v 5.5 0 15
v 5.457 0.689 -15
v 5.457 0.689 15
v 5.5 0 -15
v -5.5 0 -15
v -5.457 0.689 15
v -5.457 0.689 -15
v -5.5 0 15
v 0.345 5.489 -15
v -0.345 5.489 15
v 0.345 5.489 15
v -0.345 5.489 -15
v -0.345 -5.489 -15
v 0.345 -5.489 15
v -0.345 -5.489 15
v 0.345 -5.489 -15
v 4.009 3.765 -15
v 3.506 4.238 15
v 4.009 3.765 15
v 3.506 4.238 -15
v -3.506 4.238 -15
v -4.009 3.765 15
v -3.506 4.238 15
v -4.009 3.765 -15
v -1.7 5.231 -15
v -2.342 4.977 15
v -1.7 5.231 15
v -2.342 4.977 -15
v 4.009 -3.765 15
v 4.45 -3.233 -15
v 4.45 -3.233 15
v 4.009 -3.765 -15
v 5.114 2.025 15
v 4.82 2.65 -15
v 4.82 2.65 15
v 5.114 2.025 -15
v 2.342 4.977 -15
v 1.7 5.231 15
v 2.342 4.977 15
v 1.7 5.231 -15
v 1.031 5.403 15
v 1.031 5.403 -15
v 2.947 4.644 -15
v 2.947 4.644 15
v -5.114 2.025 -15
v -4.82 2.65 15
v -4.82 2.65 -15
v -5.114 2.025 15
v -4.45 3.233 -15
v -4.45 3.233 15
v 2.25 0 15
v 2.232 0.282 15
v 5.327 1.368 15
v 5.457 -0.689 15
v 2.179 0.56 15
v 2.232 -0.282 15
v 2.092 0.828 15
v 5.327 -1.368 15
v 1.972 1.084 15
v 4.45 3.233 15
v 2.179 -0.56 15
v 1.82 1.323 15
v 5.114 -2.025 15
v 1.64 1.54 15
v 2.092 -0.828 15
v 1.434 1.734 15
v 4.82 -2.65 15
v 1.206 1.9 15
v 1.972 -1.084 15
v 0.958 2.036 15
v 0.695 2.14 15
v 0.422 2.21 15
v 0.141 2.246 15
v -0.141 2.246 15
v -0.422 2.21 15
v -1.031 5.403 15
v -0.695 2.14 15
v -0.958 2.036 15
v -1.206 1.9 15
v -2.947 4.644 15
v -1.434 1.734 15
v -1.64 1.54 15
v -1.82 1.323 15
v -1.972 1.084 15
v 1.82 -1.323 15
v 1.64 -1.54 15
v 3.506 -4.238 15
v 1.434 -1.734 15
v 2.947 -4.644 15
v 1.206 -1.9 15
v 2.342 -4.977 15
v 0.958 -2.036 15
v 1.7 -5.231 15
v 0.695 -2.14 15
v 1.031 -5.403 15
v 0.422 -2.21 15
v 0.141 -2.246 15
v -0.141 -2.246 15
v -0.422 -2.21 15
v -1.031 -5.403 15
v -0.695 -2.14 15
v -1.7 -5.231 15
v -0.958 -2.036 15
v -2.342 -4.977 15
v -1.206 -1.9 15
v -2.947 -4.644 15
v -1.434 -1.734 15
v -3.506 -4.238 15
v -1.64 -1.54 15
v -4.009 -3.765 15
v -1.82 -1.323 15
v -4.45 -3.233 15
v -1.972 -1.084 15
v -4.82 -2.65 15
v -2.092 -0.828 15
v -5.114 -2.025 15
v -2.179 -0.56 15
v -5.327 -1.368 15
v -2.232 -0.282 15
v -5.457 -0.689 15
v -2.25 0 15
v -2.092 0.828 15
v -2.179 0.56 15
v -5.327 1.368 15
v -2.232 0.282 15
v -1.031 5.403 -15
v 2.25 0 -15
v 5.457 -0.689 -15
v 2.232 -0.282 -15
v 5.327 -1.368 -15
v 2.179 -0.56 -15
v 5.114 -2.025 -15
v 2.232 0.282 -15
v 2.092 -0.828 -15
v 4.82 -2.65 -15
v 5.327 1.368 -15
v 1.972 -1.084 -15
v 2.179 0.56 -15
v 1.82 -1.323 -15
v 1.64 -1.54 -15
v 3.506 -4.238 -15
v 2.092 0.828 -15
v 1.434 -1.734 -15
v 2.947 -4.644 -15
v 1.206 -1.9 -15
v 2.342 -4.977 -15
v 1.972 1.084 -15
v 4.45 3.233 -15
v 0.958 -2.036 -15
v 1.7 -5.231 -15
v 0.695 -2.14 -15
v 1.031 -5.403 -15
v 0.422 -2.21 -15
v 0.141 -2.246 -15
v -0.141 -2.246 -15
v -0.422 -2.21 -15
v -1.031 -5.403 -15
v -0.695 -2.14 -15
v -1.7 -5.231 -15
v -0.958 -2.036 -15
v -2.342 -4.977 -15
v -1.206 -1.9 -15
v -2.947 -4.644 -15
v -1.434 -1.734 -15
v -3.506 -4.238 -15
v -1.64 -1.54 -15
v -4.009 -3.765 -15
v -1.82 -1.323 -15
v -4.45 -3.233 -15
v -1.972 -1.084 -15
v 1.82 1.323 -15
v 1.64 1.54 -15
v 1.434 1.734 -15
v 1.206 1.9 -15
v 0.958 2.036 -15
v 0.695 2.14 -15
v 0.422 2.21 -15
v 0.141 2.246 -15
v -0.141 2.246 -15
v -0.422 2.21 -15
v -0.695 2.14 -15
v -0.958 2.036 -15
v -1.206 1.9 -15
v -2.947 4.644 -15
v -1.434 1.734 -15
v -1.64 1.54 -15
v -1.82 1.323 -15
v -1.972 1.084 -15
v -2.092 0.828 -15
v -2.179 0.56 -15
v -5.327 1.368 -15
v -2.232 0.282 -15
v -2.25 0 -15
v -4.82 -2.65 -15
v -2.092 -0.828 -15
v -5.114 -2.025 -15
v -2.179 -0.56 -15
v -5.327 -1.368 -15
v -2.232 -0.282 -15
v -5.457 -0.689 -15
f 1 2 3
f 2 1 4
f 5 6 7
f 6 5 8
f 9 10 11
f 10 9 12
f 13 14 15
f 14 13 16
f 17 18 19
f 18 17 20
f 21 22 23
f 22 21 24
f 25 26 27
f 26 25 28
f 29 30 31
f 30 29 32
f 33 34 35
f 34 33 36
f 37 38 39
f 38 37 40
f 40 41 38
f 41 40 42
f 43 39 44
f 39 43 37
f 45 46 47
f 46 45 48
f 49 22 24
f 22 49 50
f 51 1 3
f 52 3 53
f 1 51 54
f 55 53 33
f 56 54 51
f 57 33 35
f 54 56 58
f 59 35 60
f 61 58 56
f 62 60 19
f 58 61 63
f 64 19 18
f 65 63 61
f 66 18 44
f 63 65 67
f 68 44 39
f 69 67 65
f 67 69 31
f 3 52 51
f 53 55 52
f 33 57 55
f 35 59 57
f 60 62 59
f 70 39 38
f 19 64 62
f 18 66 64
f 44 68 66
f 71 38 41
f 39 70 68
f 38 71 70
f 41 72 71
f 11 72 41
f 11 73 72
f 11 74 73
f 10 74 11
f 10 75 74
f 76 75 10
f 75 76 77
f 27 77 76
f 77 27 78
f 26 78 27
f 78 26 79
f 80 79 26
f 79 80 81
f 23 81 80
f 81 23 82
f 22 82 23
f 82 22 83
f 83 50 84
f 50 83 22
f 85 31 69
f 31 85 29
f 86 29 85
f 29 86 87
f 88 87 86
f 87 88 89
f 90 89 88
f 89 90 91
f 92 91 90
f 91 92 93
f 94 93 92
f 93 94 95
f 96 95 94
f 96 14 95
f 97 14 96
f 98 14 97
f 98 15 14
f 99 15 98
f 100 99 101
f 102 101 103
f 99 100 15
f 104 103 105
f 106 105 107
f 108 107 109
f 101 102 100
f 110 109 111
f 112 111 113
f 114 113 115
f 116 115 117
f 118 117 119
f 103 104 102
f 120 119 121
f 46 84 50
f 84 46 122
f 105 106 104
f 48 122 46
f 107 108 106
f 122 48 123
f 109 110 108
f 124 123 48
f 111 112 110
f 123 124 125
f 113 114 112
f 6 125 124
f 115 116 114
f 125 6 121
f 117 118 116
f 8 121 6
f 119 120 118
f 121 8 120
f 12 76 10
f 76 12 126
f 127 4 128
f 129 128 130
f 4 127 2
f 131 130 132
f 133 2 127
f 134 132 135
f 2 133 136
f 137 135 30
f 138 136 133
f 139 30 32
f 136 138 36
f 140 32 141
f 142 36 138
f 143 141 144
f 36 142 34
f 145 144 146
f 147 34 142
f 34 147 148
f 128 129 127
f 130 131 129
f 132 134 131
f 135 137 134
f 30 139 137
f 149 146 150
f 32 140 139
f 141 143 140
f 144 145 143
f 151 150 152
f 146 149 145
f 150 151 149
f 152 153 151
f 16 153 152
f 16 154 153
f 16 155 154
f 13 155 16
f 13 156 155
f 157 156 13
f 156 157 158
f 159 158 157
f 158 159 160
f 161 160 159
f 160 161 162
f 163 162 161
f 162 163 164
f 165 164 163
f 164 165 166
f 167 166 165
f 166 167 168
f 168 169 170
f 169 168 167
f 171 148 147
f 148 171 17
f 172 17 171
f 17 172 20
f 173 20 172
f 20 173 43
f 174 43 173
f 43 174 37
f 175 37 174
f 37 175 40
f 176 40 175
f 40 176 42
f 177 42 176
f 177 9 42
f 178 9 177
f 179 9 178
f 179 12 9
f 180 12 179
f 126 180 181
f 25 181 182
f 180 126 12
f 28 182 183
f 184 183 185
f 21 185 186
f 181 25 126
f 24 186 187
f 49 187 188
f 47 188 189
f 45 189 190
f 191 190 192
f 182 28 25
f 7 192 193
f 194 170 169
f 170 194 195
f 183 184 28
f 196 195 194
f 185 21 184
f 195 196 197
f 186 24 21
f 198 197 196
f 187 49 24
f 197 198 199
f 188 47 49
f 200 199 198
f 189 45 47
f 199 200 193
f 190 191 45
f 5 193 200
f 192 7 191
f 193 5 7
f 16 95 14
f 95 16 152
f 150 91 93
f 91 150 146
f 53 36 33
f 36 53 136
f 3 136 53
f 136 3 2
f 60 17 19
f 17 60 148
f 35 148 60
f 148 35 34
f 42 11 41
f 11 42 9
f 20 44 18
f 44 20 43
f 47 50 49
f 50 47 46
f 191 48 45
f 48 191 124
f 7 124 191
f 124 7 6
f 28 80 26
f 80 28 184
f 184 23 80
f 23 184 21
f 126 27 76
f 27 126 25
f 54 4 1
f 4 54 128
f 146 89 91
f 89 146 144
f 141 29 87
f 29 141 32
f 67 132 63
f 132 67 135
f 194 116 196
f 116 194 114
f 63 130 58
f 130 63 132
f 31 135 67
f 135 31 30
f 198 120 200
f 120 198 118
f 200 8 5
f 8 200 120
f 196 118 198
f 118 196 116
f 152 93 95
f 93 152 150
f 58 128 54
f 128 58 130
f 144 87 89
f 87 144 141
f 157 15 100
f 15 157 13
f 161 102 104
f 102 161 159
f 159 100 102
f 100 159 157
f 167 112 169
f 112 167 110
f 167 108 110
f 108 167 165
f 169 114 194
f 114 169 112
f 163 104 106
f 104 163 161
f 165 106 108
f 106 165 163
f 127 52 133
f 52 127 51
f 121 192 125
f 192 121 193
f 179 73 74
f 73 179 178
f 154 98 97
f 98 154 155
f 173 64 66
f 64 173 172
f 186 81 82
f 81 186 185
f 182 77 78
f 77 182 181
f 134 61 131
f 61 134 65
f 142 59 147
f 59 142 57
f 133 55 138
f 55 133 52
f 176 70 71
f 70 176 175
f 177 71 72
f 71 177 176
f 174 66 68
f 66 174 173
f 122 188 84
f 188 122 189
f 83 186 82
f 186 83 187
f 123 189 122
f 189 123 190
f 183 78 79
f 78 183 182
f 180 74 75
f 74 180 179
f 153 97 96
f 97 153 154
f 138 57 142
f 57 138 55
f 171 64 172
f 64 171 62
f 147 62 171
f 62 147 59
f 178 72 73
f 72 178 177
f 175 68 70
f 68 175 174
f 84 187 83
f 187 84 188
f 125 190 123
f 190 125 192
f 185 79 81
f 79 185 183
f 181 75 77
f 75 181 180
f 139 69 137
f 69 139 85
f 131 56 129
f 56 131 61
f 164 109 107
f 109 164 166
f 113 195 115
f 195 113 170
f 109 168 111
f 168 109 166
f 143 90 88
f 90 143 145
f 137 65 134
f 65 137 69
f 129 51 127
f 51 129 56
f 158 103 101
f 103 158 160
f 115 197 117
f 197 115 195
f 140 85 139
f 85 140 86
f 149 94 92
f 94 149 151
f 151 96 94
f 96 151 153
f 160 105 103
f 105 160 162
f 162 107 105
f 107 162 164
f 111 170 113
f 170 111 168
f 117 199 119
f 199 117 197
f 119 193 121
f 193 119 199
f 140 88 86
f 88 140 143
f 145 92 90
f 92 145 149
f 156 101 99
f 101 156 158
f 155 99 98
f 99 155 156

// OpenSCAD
$fn = 50;


difference() {
	union() {
		translate(v = [0, 0, -15.0000000000]) {
			cylinder(h = 30, r = 5.5000000000);
		}
	}
	union() {
		translate(v = [0, 0, -100.0000000000]) {
			cylinder(h = 200, r = 2.2500000000);
		}
	}
}
